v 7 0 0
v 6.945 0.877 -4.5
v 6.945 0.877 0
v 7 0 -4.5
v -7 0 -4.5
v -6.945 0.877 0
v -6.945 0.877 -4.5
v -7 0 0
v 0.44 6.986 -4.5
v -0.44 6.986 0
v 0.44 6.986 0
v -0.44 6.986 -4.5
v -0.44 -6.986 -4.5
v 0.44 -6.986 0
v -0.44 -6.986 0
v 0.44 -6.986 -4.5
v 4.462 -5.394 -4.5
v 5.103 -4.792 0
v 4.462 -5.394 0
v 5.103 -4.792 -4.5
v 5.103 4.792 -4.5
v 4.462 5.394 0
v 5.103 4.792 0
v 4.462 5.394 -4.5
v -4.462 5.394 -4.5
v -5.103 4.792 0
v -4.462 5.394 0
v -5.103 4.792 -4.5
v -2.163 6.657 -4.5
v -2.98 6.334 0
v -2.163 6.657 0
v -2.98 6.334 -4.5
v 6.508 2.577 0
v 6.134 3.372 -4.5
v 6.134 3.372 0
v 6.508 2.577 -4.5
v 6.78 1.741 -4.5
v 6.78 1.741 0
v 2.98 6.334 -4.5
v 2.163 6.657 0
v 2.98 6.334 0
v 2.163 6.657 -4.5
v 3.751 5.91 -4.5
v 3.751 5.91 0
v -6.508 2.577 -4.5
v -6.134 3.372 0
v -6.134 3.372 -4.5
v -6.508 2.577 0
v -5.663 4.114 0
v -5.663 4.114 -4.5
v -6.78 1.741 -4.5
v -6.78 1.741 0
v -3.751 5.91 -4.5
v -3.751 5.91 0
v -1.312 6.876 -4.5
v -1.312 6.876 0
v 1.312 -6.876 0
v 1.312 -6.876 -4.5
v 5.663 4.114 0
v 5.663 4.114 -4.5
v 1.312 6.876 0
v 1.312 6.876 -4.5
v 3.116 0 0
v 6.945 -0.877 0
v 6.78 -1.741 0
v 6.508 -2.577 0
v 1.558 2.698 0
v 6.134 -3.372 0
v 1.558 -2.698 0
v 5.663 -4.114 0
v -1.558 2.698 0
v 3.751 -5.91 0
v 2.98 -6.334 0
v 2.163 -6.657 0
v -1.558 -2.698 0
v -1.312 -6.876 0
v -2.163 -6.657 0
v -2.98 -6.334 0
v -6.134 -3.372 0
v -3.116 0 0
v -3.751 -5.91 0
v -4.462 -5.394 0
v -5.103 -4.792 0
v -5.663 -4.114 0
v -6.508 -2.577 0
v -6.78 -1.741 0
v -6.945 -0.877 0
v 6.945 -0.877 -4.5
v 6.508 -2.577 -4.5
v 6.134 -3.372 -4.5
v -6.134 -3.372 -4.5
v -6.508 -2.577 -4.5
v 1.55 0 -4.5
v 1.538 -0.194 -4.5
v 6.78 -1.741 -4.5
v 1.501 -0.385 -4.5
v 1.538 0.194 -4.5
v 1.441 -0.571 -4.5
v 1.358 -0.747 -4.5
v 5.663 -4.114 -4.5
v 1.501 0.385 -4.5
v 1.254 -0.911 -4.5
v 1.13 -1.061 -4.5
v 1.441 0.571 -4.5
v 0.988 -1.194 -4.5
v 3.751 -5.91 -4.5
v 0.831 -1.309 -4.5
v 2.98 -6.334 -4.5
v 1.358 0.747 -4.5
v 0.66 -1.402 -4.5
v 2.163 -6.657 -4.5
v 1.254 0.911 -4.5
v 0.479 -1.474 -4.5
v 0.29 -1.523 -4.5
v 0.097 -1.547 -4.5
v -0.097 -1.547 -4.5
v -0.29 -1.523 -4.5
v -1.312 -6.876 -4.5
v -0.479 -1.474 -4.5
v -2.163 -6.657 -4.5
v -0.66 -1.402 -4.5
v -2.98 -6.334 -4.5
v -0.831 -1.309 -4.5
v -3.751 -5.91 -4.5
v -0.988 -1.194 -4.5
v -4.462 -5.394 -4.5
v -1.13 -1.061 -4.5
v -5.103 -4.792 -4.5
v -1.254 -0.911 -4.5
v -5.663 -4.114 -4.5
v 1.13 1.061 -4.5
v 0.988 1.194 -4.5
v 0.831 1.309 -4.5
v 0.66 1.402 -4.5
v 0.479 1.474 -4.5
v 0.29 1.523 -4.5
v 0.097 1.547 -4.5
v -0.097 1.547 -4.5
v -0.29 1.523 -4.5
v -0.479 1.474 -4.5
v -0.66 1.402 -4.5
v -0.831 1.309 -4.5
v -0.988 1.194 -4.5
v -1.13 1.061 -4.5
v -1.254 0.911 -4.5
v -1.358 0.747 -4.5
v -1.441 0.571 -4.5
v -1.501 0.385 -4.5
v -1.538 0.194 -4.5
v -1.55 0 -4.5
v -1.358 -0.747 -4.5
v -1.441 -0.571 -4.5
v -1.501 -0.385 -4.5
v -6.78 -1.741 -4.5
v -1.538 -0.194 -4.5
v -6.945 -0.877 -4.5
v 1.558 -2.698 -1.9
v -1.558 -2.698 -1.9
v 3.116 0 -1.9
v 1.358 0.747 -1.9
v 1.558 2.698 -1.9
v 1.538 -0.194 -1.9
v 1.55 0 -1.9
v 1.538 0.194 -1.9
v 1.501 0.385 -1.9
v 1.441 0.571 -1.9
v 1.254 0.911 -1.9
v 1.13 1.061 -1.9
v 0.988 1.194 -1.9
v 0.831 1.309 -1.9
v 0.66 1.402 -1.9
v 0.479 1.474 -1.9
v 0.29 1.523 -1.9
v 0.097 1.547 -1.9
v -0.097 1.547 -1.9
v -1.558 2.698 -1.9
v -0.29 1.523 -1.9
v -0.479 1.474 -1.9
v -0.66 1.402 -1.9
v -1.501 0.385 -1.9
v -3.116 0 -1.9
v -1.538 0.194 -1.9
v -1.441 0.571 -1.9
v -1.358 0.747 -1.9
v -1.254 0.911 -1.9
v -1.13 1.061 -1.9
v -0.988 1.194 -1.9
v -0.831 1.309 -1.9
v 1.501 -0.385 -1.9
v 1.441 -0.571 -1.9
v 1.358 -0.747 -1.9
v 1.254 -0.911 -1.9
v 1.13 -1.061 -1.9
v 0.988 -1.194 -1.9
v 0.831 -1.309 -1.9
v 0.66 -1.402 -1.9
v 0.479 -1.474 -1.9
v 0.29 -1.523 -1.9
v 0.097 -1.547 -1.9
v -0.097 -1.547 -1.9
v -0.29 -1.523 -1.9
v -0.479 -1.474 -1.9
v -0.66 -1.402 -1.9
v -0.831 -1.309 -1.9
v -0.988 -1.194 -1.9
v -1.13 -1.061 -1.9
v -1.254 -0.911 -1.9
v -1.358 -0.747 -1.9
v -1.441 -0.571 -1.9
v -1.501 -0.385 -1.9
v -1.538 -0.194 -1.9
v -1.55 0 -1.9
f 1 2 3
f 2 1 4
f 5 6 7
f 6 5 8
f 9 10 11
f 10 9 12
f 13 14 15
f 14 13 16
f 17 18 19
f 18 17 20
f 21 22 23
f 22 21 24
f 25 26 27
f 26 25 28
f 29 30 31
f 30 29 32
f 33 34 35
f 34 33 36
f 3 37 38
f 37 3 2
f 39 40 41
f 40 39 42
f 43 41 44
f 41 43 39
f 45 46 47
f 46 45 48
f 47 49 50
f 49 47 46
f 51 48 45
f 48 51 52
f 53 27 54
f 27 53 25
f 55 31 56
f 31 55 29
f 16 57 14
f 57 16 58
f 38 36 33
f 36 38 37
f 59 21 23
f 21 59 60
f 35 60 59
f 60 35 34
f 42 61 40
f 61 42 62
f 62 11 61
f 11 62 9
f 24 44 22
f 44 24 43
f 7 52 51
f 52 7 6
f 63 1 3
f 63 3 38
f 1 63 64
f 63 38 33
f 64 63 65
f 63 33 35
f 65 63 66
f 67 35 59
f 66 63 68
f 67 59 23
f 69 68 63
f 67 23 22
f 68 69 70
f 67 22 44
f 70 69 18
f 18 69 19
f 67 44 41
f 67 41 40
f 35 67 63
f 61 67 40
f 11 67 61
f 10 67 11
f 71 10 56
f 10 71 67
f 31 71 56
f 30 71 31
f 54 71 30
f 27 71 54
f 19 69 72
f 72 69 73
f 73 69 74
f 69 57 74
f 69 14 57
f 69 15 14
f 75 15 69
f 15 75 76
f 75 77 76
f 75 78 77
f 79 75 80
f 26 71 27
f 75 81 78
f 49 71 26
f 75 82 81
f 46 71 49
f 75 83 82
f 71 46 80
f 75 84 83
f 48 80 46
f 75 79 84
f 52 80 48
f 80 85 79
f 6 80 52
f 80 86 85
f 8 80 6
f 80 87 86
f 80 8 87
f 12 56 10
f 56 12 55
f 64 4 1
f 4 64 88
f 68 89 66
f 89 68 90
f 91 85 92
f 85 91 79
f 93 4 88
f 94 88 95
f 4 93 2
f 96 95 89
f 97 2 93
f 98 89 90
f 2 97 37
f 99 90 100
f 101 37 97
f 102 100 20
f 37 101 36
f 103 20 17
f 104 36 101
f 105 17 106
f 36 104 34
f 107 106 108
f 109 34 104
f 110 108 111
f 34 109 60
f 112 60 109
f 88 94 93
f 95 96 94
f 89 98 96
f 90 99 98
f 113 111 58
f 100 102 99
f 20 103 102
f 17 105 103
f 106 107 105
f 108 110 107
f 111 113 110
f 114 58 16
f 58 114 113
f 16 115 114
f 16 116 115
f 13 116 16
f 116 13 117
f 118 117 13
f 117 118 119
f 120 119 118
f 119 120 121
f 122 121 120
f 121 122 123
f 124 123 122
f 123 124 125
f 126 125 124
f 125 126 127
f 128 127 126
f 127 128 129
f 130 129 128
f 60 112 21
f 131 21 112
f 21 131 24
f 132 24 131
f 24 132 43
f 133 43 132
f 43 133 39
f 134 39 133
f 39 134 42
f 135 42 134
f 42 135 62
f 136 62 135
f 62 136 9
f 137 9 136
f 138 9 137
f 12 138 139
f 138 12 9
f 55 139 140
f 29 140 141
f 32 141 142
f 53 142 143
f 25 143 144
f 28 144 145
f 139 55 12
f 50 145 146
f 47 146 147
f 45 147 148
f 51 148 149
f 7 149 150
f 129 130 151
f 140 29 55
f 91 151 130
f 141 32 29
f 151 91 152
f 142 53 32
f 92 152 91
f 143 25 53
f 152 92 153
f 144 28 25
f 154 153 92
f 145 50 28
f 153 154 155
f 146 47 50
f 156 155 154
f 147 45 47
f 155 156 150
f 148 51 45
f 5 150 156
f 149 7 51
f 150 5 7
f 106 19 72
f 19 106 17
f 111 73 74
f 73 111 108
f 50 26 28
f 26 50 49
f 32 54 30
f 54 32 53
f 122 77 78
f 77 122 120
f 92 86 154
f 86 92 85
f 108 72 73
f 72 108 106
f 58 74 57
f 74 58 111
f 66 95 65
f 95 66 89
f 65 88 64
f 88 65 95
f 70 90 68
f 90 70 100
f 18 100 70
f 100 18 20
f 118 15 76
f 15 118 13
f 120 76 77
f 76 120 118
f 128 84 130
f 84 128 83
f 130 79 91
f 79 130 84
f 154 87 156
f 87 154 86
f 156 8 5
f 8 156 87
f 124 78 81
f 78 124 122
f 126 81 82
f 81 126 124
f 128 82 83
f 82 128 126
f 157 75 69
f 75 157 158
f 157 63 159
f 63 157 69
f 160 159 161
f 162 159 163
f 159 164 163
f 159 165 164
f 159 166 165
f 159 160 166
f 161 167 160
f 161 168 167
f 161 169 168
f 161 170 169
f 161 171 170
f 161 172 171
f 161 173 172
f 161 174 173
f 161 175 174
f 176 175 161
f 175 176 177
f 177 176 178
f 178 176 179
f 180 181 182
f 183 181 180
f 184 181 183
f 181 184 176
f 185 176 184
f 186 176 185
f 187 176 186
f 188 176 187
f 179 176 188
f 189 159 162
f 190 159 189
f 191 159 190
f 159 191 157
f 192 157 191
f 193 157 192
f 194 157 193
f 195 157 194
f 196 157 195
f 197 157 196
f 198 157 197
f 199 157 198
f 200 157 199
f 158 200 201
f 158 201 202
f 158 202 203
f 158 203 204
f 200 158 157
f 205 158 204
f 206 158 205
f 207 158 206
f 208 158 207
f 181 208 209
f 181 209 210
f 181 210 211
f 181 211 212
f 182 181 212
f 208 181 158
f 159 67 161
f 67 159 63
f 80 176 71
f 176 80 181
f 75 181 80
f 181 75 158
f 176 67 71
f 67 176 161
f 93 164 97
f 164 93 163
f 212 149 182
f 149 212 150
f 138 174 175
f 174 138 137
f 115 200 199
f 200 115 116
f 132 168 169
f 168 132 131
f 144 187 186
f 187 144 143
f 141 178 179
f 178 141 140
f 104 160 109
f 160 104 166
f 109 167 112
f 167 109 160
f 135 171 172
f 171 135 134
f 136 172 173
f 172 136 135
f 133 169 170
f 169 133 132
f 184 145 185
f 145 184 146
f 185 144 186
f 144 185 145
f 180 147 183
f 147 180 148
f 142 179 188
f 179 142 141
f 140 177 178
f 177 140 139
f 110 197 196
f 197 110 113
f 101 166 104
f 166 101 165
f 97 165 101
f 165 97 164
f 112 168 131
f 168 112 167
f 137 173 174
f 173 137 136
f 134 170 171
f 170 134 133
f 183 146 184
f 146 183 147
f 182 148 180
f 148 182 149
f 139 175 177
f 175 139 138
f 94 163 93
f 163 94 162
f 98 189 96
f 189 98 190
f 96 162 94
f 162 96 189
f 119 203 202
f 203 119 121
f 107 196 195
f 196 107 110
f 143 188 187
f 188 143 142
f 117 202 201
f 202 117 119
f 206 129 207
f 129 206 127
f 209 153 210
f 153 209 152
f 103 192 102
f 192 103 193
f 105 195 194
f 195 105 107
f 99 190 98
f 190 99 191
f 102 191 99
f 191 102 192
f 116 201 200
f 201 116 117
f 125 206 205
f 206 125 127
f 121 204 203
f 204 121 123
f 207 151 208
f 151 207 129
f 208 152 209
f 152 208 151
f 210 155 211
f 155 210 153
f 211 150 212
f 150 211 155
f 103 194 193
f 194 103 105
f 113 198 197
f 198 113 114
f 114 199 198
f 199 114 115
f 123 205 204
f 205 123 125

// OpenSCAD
$fn = 50;


difference() {
	union() {
		translate(v = [0, 0, -4.5000000000]) {
			cylinder(h = 4.5000000000, r = 7.0000000000);
		}
		translate(v = [0, 0, -3.0000000000]) {
			cylinder(h = 3, r = 2.8750000000);
		}
	}
	union() {
		translate(v = [0, 0, 0]) {
			rotate(a = [0, 0, 0]) {
				difference() {
					union() {
						translate(v = [0, 0, -1.9000000000]) {
							linear_extrude(height = 1.9000000000) {
								polygon(points = [[3.1158000000, 0.0000000000], [1.5579000000, 2.6983619531], [-1.5579000000, 2.6983619531], [-3.1158000000, 0.0000000000], [-1.5579000000, -2.6983619531], [1.5579000000, -2.6983619531]]);
							}
						}
					}
					union();
				}
			}
		}
		#translate(v = [0, 0, -100.0000000000]) {
			cylinder(h = 200, r = 1.5500000000);
		}
	}
}
